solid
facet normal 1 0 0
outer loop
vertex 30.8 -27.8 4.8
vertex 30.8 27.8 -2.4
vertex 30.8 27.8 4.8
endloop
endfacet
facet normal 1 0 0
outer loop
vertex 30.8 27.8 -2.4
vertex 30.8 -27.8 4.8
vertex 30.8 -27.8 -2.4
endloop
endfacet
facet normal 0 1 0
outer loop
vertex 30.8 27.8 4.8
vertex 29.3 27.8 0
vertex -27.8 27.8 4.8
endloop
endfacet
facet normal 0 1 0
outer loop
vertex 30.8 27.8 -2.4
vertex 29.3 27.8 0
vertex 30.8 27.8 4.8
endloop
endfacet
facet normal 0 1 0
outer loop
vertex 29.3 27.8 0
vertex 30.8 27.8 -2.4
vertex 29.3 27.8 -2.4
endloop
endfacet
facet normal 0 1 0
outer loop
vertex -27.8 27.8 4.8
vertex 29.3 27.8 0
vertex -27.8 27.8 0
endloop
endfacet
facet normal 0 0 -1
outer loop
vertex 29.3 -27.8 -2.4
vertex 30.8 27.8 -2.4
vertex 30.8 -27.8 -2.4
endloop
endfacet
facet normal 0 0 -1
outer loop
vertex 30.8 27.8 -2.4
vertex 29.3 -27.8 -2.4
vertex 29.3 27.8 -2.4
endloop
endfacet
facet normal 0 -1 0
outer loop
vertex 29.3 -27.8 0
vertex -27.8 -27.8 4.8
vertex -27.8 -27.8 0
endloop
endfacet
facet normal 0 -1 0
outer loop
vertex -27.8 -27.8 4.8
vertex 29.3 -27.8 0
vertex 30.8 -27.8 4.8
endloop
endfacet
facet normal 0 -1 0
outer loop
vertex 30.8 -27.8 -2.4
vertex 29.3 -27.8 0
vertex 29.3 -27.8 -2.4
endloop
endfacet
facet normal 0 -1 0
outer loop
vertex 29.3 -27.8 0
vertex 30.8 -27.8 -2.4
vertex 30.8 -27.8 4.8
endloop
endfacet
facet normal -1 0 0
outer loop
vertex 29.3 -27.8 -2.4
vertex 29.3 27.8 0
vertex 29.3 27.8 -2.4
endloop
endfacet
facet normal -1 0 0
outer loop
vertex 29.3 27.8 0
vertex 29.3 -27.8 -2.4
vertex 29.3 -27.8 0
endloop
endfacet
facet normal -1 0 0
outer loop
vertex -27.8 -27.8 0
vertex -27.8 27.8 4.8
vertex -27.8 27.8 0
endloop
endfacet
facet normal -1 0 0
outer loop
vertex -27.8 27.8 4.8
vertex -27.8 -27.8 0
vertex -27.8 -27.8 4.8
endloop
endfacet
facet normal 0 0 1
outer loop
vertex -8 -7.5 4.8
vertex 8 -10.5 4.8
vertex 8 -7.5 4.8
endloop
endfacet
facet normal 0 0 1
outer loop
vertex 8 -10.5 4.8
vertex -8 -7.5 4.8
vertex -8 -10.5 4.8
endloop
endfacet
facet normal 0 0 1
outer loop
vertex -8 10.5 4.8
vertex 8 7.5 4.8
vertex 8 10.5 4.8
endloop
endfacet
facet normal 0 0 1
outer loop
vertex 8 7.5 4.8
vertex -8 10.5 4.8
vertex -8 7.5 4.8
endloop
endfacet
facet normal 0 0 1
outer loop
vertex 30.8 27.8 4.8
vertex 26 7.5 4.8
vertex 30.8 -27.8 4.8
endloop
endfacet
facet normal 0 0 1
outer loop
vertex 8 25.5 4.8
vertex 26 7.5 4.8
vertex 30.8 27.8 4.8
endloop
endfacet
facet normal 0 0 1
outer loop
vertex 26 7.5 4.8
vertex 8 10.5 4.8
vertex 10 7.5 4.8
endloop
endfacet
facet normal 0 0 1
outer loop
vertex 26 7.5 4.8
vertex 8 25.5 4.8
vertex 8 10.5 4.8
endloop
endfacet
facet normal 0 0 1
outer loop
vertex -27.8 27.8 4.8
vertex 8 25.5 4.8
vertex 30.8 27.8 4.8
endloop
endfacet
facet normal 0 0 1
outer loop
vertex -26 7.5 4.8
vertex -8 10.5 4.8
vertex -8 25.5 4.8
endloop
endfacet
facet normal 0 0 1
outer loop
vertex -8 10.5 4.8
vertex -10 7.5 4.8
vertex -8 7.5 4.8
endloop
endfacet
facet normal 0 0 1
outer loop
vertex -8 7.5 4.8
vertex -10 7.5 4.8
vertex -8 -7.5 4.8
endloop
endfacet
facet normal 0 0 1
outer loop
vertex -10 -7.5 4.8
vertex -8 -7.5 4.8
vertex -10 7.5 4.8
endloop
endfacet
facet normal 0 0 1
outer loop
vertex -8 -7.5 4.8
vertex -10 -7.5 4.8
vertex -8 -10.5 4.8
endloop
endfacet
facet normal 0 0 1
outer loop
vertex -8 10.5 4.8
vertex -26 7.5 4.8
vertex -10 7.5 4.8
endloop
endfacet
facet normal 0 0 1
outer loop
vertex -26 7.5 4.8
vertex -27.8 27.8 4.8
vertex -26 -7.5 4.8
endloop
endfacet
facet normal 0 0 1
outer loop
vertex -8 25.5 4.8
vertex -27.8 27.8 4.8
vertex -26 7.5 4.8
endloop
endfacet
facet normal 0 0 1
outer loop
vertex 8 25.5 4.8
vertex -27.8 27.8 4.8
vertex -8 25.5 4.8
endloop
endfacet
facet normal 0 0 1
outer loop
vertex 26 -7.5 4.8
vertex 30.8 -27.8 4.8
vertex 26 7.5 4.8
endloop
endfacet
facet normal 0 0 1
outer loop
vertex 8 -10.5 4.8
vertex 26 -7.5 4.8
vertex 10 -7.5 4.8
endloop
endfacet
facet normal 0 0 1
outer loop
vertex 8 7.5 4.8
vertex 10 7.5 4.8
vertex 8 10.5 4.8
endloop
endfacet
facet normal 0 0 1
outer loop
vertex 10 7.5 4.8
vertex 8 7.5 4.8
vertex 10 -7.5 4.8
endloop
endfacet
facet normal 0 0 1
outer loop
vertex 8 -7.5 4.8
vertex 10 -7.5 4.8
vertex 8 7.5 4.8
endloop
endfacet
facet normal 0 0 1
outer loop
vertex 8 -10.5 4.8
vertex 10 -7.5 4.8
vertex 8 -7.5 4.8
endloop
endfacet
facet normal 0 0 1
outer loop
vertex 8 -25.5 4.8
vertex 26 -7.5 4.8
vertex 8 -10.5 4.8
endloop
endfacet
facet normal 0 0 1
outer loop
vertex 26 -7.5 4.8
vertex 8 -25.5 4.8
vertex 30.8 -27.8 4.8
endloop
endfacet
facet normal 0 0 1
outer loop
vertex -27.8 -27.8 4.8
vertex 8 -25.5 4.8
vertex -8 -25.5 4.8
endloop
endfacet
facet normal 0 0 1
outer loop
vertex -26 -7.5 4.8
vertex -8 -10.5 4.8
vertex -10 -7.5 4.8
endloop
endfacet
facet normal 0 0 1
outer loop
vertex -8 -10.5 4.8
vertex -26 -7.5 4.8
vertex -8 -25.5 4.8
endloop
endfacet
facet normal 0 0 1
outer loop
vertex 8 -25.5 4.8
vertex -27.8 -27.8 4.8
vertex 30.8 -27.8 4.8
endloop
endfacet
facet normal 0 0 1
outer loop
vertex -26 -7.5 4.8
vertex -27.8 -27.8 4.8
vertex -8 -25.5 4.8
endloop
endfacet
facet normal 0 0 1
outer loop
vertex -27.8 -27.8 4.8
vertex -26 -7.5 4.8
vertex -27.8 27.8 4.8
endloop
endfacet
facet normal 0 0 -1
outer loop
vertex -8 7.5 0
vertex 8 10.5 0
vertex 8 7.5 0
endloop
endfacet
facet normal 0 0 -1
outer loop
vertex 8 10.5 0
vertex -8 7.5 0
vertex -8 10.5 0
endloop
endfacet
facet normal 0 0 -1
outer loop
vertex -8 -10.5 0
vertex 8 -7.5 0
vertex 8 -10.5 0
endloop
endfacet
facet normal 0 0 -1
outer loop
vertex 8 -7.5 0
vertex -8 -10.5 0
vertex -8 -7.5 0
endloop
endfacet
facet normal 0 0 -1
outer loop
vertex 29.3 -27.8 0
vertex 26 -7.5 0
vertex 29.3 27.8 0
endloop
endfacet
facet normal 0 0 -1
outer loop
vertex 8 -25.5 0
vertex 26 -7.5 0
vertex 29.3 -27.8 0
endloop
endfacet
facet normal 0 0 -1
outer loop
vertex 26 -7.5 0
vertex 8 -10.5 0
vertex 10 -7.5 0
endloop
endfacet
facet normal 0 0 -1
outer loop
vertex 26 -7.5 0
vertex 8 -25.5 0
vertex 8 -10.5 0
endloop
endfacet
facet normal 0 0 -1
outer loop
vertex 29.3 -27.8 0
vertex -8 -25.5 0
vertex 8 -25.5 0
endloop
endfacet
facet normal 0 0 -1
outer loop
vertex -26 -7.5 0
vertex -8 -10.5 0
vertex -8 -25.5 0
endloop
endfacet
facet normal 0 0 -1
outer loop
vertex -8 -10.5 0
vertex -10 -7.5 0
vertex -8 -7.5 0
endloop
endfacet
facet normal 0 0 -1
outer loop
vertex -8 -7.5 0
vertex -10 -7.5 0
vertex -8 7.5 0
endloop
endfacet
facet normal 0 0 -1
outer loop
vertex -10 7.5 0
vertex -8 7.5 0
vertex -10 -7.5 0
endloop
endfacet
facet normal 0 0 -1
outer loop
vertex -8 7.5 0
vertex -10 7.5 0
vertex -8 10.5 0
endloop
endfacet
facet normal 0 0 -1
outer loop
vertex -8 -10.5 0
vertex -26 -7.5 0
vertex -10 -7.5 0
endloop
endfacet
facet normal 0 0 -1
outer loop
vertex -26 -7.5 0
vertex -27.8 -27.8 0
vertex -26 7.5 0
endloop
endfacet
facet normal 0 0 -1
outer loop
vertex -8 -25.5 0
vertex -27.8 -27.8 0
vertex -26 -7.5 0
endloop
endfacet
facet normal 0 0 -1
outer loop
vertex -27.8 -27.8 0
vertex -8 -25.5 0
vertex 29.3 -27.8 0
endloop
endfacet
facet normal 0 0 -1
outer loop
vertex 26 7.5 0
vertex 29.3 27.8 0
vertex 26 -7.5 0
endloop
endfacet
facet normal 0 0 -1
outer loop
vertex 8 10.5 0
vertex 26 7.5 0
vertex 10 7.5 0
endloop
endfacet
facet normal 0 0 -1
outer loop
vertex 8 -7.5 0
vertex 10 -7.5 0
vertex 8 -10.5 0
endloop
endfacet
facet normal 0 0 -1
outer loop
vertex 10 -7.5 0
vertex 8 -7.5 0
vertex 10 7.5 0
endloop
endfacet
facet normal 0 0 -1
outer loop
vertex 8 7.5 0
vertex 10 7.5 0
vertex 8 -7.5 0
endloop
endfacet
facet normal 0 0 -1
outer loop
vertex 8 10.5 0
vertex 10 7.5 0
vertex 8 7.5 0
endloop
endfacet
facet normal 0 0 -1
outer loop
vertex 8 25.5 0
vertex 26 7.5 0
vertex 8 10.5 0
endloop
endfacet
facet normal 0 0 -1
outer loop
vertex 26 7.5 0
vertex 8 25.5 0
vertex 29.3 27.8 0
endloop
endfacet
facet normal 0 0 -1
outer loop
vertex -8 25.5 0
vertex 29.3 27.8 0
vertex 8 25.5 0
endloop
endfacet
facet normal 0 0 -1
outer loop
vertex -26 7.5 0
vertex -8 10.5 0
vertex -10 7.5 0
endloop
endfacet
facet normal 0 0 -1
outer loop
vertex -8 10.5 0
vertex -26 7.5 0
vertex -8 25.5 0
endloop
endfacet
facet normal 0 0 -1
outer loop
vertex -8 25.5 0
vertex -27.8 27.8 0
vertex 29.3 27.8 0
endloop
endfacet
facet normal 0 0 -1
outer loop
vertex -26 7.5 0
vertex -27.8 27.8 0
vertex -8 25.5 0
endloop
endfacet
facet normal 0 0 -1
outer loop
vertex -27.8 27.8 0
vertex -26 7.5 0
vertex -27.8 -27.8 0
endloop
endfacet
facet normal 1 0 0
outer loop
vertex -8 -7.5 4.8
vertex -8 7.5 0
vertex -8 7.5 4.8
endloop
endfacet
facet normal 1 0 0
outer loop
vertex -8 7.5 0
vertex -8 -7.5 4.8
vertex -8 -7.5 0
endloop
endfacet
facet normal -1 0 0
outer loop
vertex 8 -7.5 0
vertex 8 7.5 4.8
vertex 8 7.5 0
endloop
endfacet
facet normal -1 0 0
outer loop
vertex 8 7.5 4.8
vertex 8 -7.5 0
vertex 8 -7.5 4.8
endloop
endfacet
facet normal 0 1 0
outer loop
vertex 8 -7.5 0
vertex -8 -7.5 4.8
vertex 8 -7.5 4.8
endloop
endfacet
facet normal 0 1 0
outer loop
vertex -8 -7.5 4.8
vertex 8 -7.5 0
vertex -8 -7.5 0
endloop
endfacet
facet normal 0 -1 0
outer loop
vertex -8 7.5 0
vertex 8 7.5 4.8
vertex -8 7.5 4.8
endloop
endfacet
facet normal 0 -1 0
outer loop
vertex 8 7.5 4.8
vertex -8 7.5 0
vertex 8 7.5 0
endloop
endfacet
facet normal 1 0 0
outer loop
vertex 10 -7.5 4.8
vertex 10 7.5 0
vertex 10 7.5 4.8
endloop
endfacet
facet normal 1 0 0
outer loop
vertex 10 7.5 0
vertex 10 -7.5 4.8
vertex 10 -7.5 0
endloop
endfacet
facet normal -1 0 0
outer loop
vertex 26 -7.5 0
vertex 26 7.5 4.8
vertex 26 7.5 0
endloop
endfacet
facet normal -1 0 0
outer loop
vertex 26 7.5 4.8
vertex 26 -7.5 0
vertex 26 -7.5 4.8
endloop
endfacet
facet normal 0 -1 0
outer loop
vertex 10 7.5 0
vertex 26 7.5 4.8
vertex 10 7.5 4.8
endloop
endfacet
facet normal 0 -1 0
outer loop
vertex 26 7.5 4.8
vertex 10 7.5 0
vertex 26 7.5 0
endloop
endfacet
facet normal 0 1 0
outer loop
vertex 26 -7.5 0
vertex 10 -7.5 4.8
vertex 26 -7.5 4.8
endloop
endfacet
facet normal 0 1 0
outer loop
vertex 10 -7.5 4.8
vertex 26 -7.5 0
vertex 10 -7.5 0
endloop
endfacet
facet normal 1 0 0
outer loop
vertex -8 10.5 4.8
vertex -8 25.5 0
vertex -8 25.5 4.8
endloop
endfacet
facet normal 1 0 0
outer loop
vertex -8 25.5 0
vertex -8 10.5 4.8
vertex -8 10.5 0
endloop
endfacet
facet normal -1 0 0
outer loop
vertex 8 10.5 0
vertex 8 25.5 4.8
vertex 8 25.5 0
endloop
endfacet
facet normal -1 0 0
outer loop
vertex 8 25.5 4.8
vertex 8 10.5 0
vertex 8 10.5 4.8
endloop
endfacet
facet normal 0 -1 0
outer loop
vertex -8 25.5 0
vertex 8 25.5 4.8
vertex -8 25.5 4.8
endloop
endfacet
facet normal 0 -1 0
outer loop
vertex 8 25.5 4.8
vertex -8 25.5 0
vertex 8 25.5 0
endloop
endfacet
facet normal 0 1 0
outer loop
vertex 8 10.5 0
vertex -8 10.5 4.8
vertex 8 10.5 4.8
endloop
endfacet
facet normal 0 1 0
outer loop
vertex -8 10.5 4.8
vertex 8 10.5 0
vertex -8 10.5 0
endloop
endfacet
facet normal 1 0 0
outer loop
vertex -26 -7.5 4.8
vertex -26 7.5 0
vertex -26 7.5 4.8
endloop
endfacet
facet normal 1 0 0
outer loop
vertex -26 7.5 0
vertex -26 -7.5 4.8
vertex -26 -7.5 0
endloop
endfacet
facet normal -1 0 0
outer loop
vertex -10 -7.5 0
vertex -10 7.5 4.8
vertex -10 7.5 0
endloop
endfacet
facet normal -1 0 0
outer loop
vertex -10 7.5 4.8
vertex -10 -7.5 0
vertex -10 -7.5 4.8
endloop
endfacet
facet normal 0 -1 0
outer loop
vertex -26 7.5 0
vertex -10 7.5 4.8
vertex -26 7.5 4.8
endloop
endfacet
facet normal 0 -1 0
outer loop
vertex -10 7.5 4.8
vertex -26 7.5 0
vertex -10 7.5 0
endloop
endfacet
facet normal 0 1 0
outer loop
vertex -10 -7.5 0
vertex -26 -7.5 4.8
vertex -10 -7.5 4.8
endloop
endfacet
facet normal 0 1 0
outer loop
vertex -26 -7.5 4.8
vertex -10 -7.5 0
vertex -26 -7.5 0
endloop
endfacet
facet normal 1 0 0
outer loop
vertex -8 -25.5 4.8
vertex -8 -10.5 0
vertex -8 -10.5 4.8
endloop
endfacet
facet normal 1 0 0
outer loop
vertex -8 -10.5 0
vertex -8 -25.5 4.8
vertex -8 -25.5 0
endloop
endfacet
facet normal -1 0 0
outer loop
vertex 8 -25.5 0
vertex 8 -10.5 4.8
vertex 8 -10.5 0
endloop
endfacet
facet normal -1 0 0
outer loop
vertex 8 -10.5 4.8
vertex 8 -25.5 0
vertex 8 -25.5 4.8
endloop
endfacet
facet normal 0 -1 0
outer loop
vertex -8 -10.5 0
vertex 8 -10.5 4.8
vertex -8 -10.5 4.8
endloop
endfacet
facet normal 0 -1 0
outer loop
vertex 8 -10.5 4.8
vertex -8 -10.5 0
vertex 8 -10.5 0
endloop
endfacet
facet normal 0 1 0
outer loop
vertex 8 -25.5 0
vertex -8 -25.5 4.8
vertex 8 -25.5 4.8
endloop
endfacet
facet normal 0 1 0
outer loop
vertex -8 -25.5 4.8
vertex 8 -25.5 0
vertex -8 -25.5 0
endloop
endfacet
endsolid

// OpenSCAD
module keySpacer(){
 
 difference(){
 translate([0+1.5,0,])cube([ 27.8*2+3,27.8*2, 4.8], center = true);
 translate([0,0,0])cube([ 27.8*2+3,27.8*2, 4.8], center = true);
 }
 
 difference(){
 translate([0+1.5,0,+2.4])cube([ 27.8*2+3,27.8*2, 4.8], center = true);
 
 translate([0,0,0])cube([16,15,10],center=true);
 translate([18,0,0])cube([16,15,10],center=true);
 translate([0,18,0])cube([16,15,10],center=true);
 translate([-18,0,0])cube([16,15,10],center=true);
 translate([0,-18,0])cube([16,15,10],center=true);

 }

}

keySpacer();
